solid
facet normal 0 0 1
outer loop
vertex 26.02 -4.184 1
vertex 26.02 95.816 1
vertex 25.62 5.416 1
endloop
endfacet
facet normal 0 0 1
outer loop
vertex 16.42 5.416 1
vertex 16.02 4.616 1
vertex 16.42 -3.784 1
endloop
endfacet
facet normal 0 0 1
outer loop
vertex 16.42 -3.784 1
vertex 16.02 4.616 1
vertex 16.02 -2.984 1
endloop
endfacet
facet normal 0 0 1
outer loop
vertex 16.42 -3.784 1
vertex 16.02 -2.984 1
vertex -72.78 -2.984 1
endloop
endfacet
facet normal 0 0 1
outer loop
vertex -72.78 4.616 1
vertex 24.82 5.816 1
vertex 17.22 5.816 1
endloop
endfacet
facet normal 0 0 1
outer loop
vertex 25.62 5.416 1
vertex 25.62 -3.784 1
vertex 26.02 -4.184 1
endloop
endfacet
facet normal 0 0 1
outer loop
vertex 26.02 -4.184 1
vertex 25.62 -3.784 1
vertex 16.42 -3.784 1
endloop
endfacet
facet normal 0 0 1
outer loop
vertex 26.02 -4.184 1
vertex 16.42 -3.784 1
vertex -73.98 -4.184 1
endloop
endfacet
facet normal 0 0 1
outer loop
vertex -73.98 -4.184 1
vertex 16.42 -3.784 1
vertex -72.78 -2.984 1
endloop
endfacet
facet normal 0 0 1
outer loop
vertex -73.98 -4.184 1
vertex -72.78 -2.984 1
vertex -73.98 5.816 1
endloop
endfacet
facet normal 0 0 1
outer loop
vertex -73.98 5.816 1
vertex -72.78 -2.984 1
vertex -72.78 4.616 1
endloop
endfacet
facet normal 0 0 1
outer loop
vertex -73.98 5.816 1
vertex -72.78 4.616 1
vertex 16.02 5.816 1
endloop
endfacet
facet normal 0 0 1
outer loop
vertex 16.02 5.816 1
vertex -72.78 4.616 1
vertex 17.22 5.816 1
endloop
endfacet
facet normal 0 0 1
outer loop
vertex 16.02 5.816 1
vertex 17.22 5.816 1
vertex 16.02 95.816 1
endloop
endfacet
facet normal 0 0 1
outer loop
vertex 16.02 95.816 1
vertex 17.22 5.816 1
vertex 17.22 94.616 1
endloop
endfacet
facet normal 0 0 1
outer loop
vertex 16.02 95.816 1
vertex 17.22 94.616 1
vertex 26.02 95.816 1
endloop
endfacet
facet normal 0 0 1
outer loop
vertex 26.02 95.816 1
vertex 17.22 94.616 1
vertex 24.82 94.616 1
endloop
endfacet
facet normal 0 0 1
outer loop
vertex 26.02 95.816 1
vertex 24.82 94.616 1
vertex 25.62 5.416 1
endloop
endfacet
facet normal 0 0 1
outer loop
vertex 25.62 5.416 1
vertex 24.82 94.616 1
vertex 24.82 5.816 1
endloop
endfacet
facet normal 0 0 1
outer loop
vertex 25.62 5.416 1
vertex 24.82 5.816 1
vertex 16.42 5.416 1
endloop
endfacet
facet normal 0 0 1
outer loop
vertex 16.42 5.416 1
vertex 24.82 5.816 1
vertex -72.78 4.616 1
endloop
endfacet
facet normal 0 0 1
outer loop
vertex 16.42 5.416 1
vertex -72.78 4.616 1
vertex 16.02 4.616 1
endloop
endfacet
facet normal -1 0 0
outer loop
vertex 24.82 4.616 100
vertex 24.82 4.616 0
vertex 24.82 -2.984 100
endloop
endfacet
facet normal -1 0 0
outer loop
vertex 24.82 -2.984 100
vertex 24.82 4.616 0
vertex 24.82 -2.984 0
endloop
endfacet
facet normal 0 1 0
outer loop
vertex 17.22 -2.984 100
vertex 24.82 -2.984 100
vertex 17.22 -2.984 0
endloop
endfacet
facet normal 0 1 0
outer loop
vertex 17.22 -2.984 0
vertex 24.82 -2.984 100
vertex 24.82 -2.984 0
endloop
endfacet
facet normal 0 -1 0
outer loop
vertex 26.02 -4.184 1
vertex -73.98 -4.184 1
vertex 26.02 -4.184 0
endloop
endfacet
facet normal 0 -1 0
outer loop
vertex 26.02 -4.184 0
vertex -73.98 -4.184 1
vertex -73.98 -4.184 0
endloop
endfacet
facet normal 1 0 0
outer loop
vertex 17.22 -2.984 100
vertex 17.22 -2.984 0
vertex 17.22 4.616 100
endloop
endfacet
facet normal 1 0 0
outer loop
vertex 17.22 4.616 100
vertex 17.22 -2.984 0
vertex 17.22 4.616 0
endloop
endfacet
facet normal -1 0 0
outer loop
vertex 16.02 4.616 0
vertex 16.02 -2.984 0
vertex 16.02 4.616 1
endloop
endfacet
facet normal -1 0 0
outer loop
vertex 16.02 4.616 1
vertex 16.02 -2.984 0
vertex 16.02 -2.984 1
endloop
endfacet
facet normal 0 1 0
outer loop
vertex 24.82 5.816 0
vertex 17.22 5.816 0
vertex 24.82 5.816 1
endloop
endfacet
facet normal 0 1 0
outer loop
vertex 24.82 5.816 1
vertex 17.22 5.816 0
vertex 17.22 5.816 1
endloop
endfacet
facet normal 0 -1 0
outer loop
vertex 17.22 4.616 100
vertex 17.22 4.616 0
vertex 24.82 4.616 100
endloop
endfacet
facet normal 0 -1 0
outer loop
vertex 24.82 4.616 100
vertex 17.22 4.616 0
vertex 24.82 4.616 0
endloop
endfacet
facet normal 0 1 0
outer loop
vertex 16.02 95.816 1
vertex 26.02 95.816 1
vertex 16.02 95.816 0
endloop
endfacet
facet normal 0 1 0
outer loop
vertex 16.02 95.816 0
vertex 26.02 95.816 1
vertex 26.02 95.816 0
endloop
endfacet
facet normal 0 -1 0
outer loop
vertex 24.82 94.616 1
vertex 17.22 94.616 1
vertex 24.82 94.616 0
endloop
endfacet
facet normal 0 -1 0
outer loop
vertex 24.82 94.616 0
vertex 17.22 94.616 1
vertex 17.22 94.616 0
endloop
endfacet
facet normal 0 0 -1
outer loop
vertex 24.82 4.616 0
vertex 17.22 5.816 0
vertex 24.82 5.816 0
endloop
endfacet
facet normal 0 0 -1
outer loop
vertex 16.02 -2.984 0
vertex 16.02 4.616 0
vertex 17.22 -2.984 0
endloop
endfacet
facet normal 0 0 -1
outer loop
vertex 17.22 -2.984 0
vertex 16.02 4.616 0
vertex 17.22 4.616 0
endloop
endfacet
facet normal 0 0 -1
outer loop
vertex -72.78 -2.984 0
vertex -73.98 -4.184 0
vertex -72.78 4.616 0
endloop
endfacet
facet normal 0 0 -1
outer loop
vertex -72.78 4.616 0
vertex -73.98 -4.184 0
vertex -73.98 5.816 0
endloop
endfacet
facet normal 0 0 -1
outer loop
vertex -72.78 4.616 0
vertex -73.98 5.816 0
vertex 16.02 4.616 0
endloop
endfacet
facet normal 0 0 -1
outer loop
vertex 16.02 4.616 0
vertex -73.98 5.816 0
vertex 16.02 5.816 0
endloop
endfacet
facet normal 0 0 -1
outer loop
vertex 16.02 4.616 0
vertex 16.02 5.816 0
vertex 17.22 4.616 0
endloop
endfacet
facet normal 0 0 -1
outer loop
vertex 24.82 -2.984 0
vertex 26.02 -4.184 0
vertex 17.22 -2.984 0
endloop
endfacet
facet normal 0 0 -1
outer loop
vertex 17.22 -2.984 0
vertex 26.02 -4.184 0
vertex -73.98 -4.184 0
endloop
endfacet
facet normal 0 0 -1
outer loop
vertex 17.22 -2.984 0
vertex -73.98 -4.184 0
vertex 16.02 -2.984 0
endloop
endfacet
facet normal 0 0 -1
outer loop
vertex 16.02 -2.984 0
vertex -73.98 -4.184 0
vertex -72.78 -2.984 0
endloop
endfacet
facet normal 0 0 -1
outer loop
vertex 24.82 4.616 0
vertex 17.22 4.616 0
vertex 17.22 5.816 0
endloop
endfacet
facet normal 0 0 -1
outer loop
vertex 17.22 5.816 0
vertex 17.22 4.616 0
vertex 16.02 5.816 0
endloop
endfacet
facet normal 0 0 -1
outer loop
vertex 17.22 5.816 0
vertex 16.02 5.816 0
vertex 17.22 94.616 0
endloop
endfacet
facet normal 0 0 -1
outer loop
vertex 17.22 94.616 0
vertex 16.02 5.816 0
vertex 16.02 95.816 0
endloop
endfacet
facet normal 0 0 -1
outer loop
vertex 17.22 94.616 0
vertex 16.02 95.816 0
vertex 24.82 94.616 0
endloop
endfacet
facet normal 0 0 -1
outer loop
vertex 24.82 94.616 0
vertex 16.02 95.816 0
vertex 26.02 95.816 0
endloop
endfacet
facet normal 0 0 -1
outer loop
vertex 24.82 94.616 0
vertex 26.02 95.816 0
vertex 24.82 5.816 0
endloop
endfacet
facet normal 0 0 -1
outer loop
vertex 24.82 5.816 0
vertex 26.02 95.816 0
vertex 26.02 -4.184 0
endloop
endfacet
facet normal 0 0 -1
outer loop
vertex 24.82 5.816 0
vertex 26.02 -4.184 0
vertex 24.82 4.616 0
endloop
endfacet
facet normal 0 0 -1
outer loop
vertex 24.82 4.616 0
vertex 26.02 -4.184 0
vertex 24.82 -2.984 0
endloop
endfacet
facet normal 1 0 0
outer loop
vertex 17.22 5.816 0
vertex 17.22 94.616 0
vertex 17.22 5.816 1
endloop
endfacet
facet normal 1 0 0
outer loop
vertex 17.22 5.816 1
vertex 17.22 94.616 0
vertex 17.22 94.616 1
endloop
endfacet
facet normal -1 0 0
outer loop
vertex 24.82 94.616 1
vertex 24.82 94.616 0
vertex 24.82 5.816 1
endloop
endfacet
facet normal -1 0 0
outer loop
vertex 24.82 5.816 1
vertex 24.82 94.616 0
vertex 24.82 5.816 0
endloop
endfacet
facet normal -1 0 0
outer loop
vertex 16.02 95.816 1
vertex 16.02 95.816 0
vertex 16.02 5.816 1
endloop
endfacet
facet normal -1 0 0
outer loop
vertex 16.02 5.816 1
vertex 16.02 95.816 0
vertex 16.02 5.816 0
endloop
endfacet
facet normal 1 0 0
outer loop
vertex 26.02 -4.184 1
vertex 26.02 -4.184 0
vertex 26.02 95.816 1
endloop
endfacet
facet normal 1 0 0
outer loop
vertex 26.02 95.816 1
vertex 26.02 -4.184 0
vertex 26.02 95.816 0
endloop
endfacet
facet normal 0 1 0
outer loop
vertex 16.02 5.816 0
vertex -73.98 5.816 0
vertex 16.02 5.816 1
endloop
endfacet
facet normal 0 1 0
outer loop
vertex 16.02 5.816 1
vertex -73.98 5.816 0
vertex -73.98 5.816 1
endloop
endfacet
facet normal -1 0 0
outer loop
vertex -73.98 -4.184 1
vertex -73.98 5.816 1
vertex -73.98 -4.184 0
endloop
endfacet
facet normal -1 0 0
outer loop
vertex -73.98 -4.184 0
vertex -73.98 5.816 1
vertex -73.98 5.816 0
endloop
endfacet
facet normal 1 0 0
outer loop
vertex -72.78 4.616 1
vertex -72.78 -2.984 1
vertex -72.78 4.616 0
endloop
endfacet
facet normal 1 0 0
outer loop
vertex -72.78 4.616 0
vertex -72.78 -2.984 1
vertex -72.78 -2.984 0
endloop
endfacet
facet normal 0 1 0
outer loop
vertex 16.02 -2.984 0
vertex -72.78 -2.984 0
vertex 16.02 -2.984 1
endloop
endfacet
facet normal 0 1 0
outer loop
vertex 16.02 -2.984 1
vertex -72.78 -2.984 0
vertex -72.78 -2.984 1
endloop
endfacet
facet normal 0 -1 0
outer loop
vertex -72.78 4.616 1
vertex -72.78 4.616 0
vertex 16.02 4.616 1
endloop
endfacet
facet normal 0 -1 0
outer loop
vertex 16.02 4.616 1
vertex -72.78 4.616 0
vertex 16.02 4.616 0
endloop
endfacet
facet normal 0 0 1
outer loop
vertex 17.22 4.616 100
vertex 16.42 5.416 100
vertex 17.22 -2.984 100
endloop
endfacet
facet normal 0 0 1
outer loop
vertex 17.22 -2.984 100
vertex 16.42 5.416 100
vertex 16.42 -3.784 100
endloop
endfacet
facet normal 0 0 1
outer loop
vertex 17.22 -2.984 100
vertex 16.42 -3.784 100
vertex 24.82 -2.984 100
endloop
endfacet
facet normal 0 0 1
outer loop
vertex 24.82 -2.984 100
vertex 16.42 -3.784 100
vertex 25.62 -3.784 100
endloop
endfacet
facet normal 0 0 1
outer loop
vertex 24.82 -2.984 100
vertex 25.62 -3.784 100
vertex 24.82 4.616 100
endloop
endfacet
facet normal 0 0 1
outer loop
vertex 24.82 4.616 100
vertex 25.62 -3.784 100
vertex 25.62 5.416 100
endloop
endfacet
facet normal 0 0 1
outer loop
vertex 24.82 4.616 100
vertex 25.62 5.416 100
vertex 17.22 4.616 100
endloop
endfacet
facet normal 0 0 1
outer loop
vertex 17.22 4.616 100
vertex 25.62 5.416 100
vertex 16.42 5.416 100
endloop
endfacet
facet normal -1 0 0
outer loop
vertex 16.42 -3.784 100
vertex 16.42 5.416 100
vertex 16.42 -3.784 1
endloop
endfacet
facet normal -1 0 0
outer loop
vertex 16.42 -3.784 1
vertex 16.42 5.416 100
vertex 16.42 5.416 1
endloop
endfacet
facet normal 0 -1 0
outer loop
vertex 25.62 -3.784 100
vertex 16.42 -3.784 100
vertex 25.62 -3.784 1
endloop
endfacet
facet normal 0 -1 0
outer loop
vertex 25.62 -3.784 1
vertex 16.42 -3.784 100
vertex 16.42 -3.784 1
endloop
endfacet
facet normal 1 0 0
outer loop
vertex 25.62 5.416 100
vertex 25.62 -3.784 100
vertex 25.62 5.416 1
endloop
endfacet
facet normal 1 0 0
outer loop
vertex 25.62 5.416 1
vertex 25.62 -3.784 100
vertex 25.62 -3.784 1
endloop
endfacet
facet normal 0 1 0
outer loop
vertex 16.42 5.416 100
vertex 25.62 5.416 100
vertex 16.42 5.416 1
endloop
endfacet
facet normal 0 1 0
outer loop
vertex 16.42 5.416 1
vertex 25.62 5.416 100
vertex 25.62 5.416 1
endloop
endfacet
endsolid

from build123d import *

# Parameters (mm, degrees)
EXTRUDE_1_OUTLINE_W   = 88.8
EXTRUDE_1_OUTLINE_H   = 7.6
EXTRUDE_1_OUTLINE_W_2 = 7.6
EXTRUDE_1_OUTLINE_H_2 = 88.8
EXTRUDE_1_DEPTH       = 1
SKETCH_2_W            = 9.2
SKETCH_2_H            = 9.2
SKETCH_2_W_2          = 7.6
SKETCH_2_H_2          = 7.6
EXTRUDE_2_DEPTH       = 99


# Read off the part's stored shape, not the designer's step: 拉伸-薄壁1
with BuildPart() as part:
    # 拉伸-薄壁1 outline → 拉伸-薄壁1 (new body)
    with BuildSketch(Plane.XY):
        Polygon((-73.979591837, 5.816326531), (-73.979591837, -4.183673469), (26.020408163, -4.183673469), (26.020408163, 95.816326531), (16.020408163, 95.816326531), (16.020408163, 5.816326531), align=None)
        with Locations((-28.379591837, 0.816326531)):
            Rectangle(EXTRUDE_1_OUTLINE_W, EXTRUDE_1_OUTLINE_H, mode=Mode.SUBTRACT)
        with Locations((21.020408163, 0.816326531)):
            Rectangle(EXTRUDE_1_OUTLINE_W_2, EXTRUDE_1_OUTLINE_H, mode=Mode.SUBTRACT)
        with Locations((21.020408163, 50.216326531)):
            Rectangle(EXTRUDE_1_OUTLINE_W_2, EXTRUDE_1_OUTLINE_H_2, mode=Mode.SUBTRACT)
    extrude(amount=EXTRUDE_1_DEPTH)

    # 草图2 → 拉伸-薄壁2 (add)
    with BuildSketch(Plane.XY.offset(1)):
        with Locations((21.020408163, 0.816326531)):
            Rectangle(SKETCH_2_W, SKETCH_2_H)
        with Locations((21.020408163, 0.816326531)):
            Rectangle(SKETCH_2_W_2, SKETCH_2_H_2, mode=Mode.SUBTRACT)
    extrude(amount=EXTRUDE_2_DEPTH)


solid = part.part
